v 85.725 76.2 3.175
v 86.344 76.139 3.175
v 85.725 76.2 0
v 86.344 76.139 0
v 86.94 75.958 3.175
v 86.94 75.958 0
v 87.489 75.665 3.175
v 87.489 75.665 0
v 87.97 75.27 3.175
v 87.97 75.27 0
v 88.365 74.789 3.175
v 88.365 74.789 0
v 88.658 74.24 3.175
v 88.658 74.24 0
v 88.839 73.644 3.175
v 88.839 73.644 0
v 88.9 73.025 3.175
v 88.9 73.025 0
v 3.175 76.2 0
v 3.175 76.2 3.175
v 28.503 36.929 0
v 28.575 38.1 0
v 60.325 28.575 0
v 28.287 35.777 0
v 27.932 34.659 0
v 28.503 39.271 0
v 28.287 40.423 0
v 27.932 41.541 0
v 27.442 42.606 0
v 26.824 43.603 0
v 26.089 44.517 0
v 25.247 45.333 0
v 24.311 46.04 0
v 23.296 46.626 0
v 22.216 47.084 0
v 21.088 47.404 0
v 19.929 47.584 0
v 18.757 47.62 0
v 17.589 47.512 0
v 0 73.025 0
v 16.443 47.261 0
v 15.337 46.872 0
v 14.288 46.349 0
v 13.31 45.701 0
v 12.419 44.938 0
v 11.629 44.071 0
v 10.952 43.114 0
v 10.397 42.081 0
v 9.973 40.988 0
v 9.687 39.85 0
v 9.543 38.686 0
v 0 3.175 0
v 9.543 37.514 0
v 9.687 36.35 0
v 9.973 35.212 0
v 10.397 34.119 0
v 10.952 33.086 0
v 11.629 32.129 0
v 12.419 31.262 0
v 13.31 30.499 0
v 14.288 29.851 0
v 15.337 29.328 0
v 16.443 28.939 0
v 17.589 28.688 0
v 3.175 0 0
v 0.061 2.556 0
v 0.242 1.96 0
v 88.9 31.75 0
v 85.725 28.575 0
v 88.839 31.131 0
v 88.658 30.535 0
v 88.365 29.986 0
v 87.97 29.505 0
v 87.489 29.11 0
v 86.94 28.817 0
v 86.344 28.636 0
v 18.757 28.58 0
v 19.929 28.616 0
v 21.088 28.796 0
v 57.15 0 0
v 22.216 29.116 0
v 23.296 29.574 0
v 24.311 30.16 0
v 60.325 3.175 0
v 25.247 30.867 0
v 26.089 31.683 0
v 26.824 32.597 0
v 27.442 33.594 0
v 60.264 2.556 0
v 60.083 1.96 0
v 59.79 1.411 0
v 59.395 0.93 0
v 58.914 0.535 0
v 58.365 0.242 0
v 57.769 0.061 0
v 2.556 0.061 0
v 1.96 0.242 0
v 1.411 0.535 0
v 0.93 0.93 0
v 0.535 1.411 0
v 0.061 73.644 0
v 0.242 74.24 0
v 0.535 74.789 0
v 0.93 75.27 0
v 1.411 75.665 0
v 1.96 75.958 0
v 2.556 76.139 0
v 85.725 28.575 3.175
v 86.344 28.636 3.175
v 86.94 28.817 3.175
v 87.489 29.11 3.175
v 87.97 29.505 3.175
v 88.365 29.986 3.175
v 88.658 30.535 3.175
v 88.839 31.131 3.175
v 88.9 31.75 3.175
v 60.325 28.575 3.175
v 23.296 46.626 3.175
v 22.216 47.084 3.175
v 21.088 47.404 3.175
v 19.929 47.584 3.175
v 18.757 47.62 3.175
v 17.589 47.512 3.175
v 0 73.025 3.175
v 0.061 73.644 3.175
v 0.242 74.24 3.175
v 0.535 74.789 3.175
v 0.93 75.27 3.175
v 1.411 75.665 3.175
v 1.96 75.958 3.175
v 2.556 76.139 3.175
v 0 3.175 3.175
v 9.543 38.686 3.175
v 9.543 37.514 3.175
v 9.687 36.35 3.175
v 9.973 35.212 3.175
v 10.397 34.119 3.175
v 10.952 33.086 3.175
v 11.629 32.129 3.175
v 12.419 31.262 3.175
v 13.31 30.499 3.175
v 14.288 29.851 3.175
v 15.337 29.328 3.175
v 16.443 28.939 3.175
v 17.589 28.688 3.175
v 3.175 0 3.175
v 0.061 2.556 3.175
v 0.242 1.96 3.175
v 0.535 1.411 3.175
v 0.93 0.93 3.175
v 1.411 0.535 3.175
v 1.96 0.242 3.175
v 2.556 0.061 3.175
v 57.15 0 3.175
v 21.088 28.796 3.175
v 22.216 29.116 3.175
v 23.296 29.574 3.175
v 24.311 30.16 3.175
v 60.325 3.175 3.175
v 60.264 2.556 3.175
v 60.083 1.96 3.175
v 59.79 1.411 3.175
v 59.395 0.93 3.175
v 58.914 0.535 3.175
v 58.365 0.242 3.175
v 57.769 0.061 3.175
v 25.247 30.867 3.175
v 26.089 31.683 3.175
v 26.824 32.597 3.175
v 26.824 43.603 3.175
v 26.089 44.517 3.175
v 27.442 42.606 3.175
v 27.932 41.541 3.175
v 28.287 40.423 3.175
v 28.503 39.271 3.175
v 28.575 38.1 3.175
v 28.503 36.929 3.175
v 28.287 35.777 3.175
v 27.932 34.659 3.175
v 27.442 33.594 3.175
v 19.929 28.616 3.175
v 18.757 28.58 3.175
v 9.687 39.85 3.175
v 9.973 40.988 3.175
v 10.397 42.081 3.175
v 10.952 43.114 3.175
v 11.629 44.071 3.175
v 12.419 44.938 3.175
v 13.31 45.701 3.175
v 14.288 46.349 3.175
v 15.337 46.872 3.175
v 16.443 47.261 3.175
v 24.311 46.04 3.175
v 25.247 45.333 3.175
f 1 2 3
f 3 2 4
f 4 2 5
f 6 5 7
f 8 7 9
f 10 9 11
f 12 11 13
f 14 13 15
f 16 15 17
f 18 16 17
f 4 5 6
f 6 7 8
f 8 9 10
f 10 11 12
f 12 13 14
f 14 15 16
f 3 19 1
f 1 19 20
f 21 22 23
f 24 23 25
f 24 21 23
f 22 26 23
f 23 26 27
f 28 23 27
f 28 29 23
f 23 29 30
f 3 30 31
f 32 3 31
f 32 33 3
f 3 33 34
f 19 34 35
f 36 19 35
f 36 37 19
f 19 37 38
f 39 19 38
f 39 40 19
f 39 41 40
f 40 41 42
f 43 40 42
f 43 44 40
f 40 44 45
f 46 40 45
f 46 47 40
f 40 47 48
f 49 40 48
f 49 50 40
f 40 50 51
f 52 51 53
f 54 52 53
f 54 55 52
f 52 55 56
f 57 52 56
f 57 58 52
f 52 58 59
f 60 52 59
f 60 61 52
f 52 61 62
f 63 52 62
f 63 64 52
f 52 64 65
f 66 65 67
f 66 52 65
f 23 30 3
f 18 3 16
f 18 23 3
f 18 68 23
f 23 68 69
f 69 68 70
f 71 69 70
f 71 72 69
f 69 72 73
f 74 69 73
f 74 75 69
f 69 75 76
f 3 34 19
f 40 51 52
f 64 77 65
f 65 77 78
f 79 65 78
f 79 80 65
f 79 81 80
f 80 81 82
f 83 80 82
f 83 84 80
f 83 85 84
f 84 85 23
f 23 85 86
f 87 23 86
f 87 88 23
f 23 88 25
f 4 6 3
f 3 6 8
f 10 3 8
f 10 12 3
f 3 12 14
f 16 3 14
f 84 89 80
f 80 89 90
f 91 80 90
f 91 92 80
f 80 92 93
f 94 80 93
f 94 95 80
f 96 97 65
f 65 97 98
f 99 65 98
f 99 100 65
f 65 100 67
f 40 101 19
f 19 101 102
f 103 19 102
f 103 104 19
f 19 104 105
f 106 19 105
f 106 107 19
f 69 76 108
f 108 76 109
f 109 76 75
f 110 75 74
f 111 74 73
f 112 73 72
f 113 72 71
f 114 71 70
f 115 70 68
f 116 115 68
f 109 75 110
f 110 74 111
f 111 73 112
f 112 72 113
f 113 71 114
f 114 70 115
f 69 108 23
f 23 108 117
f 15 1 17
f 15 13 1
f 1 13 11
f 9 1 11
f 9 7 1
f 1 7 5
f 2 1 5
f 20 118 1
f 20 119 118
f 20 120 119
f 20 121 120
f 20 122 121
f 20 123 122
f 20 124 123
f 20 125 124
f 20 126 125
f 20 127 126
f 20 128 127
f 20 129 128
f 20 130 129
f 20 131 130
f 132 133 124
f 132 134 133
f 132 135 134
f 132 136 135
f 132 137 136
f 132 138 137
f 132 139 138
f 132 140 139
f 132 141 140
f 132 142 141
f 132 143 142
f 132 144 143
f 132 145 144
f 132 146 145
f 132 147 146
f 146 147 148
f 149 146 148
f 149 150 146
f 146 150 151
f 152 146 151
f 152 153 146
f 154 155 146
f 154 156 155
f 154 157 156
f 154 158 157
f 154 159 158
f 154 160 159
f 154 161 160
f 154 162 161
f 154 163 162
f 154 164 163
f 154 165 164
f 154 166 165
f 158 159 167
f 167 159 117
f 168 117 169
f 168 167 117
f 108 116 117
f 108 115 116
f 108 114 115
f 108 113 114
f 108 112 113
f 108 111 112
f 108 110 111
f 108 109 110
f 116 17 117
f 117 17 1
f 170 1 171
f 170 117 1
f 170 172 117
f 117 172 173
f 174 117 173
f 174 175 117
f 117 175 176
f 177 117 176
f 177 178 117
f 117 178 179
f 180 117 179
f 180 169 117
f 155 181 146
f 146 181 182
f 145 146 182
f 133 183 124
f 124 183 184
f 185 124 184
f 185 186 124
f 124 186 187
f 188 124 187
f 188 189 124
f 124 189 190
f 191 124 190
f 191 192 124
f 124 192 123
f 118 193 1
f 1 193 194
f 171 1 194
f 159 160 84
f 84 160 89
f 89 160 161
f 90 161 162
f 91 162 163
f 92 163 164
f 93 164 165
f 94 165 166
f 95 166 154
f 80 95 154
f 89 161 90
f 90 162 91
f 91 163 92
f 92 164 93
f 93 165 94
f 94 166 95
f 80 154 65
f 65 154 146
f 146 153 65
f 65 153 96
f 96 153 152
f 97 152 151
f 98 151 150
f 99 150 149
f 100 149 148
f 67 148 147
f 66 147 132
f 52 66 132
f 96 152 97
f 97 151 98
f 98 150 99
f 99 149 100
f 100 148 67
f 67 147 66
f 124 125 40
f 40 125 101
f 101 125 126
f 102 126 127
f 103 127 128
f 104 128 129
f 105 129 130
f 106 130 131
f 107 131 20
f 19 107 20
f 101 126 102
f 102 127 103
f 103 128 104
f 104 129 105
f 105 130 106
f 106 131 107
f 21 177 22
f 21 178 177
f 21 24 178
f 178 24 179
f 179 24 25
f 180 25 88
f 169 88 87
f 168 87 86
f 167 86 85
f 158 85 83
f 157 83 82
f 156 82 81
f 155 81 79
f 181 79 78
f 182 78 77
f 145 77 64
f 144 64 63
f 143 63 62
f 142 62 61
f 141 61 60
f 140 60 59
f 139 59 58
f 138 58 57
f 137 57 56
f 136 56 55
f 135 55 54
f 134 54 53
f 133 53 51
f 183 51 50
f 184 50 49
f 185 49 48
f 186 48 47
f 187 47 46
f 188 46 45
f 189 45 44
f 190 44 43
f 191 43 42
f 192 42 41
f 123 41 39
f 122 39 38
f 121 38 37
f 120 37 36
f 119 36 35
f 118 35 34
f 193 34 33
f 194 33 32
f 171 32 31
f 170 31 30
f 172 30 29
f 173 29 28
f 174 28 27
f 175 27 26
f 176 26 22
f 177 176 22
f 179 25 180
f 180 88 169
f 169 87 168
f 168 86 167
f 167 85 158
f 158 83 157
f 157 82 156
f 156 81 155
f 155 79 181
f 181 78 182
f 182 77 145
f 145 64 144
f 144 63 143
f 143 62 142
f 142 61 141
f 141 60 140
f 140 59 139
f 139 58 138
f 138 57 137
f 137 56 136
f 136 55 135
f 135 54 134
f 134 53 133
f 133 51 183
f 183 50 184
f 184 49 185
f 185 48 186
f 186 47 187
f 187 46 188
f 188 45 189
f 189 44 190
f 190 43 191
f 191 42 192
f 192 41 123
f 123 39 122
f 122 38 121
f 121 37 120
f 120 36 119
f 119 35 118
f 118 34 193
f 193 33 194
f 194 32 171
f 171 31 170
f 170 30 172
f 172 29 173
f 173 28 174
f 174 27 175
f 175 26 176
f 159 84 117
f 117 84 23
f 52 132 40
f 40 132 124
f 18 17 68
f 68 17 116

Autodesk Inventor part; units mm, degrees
ref_plane "YZ Plane" through (0, 0, 0) normal (1, 0, 0) x (0, 1, 0)
ref_plane "XZ Plane" through (0, 0, 0) normal (0, 1, 0) x (-1, 0, 0)
ref_plane "XY Plane" through (0, 0, 0) normal (0, 0, 1) x (1, 0, 0)
sketch "Sketch1" plane through (0, 0, 0) normal (0, 0, 1) x (1, 0, 0)
  line L0 (0, 0) -> (88.9, 0)
  line L1 (88.9, 0) -> (88.9, 76.2)
  line L2 (88.9, 76.2) -> (0, 76.2)
  line L3 (0, 76.2) -> (0, 0)
  dimension "d9" = 88.9
  dimension "d10" = 76.2
extrude "Extrusion1" add sketch "Sketch1" along normal blind 3.175
sketch "Sketch3" plane through (0, 0, 3.175) normal (0, 0, 1) x (1, 0, 0)
  line L0 (88.9, 0) -> (60.325, 0)
  line L1 (60.325, 0) -> (60.325, 28.575)
  line L2 (60.325, 28.575) -> (88.9, 28.575)
  line L3 (88.9, 28.575) -> (88.9, 0)
  dimension "d12" = 28.575
extrude "Extrusion3" cut sketch "Sketch3" against normal through all
sketch "Sketch4" plane through (0, 0, 3.175) normal (0, 0, 1) x (1, 0, 0)
  line L0 (0, 0) -> (0, 76.2) projected
  line L1 (60.325, 0) -> (0, 0) projected
  circle A0 centre (19.05, 38.1) radius 9.525
  dimension "d15" = 19.05
  dimension "d16" = 38.1
  dimension "d17" = 19.05
extrude "Extrusion4" cut sketch "Sketch4" against normal through all
fillet "Fillet1" radius 3.175 5 edges at (0, 76.2, 1.5875) (0, 0, 1.5875) (60.325, 0, 1.5875) (88.9, 28.575, 1.5875) (88.9, 76.2, 1.5875)
properties part number "Plate_VerticalRollerMount_Top" material "Aluminum-6061"
